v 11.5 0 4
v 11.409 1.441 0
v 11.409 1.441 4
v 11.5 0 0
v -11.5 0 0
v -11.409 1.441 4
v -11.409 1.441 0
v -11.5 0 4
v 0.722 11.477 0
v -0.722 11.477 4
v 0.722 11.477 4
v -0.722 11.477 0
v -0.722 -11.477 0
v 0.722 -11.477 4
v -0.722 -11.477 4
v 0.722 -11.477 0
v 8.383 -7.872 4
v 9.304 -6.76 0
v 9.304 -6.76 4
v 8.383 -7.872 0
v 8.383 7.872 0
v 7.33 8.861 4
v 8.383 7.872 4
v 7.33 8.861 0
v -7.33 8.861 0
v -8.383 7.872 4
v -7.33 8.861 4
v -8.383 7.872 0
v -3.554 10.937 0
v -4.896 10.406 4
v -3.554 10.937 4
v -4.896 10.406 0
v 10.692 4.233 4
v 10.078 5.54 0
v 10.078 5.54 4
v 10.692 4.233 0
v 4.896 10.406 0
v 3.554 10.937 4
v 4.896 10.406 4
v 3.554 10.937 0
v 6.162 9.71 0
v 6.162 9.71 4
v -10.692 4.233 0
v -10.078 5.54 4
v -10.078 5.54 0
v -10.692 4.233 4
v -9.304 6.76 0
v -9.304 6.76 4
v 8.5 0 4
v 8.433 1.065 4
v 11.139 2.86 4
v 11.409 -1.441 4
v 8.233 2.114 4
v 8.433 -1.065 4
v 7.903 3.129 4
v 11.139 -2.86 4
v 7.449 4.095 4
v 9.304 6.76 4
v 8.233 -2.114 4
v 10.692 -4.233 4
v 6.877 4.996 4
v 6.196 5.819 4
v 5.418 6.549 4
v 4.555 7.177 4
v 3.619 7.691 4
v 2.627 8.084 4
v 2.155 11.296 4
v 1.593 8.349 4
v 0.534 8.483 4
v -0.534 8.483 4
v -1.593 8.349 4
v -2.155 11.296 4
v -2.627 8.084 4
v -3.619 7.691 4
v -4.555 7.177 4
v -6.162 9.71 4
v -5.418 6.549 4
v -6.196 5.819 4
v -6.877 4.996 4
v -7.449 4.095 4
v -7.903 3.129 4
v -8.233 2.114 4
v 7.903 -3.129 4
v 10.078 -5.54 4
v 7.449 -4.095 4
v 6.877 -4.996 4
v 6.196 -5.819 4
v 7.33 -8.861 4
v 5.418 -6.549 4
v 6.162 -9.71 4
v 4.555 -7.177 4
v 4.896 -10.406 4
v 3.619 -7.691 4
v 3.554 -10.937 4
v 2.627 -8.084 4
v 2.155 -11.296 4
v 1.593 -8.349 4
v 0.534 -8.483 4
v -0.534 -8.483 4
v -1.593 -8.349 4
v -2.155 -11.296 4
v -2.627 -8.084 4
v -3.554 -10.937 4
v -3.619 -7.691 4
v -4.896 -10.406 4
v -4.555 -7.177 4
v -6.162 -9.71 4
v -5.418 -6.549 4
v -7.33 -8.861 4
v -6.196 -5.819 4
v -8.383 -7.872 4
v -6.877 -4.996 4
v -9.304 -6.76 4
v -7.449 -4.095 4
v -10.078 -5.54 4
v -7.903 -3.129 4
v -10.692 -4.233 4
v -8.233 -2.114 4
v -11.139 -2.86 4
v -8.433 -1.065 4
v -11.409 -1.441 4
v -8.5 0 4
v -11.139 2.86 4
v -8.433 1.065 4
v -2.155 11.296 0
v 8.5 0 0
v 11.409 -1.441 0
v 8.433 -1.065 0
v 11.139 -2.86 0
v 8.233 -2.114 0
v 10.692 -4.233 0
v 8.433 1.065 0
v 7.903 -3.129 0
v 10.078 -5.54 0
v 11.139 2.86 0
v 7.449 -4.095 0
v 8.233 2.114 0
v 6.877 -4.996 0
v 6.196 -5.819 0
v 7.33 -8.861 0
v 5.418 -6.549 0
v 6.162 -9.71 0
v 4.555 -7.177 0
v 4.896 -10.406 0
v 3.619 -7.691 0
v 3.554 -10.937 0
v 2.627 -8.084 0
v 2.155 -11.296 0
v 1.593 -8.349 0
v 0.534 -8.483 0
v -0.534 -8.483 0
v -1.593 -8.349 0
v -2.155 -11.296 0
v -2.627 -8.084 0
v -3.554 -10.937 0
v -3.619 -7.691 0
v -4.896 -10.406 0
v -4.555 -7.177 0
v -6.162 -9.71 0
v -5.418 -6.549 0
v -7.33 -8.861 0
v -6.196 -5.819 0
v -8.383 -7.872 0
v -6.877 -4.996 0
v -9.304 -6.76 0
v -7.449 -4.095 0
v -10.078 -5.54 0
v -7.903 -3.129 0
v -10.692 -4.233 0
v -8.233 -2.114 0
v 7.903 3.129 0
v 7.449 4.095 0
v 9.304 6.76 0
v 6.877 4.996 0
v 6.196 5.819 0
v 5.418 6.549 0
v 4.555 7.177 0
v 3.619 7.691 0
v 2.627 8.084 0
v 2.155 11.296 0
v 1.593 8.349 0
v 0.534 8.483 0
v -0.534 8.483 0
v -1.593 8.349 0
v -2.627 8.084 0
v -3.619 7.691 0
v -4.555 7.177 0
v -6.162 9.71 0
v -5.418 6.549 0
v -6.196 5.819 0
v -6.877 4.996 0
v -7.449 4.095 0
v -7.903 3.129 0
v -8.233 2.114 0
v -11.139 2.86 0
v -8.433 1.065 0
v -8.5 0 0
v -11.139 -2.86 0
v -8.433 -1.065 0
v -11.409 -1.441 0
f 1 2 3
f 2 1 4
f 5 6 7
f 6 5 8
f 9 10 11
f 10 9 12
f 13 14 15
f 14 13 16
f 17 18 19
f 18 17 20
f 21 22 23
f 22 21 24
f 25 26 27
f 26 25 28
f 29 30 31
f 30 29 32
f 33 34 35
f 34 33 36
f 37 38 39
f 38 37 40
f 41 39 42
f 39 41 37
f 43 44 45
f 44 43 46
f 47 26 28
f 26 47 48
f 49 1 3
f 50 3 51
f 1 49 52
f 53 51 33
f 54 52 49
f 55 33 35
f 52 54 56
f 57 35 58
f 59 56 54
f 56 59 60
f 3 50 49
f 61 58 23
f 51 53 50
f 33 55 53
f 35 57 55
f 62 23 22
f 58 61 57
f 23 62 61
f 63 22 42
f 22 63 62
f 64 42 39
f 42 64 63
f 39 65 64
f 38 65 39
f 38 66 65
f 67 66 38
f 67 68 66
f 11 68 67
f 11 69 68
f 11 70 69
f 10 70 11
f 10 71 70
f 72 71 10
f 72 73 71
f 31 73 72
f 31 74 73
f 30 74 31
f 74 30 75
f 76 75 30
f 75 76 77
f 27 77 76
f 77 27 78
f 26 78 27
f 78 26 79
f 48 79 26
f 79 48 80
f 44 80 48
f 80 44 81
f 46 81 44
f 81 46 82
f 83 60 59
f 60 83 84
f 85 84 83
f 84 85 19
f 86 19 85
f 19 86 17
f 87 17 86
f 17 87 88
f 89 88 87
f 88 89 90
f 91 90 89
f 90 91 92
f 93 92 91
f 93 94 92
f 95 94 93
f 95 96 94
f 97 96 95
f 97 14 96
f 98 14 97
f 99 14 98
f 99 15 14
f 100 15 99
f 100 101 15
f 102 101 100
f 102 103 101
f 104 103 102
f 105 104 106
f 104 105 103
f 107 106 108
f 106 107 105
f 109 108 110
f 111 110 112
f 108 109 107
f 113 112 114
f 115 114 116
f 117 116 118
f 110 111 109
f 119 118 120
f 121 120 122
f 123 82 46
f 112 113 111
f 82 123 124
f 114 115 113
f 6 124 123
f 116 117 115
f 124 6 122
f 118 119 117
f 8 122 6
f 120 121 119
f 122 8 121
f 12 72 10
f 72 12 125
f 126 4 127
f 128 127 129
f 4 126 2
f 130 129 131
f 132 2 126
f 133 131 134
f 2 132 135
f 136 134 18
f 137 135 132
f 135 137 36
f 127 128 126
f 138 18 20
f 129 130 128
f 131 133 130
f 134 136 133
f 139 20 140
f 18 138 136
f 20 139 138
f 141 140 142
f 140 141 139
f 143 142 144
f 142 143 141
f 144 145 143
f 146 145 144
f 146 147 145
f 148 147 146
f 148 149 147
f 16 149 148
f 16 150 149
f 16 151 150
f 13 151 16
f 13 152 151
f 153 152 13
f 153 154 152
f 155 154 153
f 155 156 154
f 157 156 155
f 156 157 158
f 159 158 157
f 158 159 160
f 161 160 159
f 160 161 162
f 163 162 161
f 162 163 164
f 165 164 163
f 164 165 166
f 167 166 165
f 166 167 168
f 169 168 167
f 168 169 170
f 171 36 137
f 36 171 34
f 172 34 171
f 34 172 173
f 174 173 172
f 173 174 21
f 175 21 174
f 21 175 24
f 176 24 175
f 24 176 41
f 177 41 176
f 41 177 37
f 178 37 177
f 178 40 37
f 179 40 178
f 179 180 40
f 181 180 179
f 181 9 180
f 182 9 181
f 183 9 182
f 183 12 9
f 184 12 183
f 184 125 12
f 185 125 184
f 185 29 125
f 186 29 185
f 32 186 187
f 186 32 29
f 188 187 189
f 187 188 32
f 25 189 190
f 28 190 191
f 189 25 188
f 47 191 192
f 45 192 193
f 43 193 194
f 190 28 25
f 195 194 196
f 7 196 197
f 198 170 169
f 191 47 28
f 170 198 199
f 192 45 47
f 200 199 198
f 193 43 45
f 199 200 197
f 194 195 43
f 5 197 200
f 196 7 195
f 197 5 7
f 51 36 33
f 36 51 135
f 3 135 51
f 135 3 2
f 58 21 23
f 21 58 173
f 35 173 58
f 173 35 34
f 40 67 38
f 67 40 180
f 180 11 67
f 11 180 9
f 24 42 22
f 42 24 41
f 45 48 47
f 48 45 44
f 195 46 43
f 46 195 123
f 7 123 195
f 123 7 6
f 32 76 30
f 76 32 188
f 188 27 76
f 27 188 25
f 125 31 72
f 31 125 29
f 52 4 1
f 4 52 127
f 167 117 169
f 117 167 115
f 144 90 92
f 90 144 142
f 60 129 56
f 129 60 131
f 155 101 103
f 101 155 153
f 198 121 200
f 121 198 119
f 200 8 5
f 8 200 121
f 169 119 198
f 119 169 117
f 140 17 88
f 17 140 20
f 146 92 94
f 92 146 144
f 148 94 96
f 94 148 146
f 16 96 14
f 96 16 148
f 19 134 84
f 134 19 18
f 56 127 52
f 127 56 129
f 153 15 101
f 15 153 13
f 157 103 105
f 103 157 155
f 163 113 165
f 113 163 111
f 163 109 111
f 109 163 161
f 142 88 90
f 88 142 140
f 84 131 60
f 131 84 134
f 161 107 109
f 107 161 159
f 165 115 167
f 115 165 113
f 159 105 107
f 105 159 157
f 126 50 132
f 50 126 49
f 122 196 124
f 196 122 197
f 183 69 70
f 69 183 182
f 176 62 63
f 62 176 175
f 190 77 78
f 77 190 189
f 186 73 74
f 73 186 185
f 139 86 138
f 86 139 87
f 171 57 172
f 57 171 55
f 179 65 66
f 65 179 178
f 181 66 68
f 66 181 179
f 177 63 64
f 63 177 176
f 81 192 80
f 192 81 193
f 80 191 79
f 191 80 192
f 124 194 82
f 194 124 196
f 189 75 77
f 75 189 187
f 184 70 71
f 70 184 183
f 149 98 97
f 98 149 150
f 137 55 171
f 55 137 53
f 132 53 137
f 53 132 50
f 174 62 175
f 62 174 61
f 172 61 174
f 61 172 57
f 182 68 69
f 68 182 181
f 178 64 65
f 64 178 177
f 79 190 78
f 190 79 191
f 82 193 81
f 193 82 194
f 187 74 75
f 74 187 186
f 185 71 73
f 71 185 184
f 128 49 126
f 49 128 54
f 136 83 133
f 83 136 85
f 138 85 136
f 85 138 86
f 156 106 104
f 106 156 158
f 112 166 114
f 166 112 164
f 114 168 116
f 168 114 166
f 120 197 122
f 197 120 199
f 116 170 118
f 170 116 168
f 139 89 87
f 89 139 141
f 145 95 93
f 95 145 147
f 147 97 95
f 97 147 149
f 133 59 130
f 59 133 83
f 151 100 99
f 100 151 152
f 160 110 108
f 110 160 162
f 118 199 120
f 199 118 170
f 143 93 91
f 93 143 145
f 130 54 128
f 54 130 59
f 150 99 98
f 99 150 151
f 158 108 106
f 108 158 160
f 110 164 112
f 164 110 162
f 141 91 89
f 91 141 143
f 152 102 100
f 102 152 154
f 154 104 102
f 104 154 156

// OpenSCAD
$fn = 50;


difference() {
	union() {
		cylinder(h = 4, r = 11.5000000000);
	}
	union() {
		cylinder(h = 4, r = 8.5000000000);
	}
}
